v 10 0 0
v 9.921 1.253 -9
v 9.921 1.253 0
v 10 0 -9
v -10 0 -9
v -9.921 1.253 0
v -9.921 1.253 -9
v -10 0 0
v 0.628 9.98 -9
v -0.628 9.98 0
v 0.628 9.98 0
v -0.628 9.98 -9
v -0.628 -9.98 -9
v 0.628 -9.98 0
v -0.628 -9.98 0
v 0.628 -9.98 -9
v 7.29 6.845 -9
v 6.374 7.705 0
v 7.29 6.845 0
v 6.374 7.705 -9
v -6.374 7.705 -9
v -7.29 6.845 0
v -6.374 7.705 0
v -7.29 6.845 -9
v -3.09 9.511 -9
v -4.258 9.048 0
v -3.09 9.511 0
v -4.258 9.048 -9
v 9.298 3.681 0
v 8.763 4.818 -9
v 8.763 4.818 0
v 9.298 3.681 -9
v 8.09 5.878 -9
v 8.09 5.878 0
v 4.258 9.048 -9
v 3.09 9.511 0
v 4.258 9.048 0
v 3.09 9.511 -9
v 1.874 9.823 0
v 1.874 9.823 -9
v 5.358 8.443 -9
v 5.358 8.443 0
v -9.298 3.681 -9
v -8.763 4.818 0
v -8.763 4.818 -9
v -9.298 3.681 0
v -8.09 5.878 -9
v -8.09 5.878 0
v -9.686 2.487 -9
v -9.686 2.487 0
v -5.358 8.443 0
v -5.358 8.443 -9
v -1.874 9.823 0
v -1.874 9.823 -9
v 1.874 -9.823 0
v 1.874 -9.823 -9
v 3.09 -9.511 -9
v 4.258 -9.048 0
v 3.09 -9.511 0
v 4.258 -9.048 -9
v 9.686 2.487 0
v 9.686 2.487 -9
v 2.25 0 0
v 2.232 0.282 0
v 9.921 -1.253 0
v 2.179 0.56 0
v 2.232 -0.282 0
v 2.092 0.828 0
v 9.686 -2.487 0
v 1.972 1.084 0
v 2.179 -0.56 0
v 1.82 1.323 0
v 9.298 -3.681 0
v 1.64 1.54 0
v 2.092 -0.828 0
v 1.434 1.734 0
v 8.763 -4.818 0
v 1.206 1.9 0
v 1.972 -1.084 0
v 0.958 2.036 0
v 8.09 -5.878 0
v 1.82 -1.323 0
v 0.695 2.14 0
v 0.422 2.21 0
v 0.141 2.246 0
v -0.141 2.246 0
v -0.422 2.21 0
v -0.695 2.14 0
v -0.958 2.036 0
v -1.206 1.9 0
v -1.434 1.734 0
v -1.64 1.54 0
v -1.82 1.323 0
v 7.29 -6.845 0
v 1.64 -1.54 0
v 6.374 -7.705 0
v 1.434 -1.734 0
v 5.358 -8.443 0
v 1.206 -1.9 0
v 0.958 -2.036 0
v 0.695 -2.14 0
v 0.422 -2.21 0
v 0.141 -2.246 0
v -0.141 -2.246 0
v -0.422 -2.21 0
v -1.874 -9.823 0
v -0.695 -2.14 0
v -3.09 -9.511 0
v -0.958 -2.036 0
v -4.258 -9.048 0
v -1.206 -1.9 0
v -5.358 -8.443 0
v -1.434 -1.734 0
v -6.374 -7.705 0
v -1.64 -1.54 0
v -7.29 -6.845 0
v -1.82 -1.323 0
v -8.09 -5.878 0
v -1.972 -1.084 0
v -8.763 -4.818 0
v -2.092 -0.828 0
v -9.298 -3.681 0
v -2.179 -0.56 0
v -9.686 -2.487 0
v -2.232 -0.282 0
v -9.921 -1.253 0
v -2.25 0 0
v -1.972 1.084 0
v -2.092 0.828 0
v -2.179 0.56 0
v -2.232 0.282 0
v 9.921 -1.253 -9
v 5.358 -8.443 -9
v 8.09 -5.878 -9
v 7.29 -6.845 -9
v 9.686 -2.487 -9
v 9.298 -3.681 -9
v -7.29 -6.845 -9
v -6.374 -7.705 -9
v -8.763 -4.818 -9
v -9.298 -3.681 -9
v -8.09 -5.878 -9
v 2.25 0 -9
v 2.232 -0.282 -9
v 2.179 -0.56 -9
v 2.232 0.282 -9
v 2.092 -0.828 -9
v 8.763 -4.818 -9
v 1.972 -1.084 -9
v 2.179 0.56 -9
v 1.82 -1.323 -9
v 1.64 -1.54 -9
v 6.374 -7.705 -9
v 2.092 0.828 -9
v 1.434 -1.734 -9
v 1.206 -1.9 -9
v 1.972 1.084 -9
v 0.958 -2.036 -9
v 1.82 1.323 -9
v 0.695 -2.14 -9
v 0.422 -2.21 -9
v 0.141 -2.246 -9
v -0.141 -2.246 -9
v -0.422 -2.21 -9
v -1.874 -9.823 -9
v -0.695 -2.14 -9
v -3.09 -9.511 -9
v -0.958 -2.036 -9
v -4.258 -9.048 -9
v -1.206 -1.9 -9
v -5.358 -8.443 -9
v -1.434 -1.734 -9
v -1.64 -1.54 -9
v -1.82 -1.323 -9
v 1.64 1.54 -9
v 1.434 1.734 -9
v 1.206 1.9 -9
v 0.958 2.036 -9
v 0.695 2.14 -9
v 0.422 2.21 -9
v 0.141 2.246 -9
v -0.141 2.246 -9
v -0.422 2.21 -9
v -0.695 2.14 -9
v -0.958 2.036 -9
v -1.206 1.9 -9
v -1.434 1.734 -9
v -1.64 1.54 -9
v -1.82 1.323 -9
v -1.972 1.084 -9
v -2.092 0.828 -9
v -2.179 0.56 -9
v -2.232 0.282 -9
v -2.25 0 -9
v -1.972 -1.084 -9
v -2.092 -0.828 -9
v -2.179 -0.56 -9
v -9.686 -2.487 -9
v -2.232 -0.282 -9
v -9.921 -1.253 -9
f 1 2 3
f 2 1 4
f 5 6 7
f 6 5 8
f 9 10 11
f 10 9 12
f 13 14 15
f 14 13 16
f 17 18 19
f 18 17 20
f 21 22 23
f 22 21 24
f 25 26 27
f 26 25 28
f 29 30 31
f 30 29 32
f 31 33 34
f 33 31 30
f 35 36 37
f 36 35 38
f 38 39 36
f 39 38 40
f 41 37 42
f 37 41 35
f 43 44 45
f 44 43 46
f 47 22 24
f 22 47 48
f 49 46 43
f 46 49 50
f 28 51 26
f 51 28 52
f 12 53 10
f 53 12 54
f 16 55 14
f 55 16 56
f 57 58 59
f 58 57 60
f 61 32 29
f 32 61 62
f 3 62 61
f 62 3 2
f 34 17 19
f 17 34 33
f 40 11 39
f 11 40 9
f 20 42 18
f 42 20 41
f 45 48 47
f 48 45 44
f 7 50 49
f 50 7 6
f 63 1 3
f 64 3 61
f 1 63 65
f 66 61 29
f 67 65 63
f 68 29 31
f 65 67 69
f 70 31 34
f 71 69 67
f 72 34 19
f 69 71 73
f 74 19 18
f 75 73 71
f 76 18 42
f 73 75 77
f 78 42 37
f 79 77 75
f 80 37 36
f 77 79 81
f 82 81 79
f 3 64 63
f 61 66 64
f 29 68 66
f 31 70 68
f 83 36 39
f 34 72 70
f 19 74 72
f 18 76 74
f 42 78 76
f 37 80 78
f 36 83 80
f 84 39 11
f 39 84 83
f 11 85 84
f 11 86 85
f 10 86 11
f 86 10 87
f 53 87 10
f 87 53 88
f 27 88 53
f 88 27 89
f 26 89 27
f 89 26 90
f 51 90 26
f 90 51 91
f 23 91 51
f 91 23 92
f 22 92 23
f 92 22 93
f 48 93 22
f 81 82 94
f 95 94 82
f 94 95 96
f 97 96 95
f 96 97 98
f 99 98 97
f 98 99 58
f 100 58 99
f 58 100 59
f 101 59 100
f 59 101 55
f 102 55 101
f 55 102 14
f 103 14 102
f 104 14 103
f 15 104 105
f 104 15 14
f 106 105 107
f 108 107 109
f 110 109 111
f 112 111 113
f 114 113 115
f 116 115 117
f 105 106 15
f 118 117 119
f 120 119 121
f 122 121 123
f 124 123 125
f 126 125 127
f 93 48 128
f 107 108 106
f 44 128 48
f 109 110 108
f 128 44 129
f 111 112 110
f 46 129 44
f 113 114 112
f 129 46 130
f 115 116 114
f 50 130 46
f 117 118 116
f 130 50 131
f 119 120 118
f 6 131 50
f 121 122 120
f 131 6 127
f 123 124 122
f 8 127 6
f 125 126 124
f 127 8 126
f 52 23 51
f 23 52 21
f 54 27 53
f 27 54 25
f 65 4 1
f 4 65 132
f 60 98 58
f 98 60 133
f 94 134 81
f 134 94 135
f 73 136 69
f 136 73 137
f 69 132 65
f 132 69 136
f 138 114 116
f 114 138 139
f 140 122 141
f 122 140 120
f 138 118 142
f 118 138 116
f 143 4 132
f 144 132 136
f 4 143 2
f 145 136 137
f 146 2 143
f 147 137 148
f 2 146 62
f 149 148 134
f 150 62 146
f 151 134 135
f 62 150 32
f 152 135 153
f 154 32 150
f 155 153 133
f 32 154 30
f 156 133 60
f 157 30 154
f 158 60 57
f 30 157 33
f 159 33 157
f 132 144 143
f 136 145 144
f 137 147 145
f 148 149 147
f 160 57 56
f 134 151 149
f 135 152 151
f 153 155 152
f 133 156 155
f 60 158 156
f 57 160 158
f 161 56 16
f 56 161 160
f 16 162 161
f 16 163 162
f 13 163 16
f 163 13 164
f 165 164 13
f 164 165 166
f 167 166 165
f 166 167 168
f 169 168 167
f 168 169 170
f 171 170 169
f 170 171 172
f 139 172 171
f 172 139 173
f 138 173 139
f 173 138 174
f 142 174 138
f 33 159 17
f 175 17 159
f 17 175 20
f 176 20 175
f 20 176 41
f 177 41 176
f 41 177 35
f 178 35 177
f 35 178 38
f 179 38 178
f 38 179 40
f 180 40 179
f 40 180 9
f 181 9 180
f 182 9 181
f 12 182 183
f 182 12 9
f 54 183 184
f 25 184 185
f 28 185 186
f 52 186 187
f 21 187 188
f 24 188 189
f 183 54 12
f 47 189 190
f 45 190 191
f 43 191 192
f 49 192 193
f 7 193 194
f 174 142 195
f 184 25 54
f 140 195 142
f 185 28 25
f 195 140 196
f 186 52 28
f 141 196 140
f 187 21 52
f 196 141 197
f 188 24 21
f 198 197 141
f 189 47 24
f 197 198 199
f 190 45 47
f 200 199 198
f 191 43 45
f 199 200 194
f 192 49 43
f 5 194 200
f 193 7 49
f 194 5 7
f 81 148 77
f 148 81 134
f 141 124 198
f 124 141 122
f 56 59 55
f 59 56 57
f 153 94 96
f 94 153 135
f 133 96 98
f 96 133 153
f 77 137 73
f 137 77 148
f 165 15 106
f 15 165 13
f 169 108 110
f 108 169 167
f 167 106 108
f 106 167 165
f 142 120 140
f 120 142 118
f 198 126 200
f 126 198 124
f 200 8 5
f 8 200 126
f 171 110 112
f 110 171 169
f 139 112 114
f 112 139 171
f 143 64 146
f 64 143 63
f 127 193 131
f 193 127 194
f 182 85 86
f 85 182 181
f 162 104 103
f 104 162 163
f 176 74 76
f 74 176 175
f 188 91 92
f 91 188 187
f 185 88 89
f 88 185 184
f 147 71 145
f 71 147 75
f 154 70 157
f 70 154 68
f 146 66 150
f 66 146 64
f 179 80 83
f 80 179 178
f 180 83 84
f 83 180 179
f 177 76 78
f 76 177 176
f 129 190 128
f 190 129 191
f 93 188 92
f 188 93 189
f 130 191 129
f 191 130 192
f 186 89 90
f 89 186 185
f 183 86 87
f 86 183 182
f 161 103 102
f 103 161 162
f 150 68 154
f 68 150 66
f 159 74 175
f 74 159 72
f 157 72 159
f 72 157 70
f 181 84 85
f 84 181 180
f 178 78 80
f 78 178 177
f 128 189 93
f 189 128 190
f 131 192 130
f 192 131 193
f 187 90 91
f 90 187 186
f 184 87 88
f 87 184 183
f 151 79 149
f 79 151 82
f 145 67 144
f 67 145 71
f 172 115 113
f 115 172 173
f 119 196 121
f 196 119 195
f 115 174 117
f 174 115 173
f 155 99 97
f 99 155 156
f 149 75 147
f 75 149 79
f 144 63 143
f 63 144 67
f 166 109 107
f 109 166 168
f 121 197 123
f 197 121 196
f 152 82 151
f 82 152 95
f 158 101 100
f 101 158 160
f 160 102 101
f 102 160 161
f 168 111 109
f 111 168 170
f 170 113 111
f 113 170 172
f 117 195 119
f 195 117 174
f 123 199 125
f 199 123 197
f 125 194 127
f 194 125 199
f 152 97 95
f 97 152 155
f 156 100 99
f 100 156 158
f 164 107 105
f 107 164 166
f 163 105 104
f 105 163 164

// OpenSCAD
$fn = 50;


difference() {
	union() {
		translate(v = [0, 0, -9.0000000000]) {
			cylinder(h = 9, r = 10.0000000000);
		}
		cylinder(h = 0, r = 19.0000000000);
	}
	union() {
		#translate(v = [0, 0, -9]) {
			cylinder(h = 9, r = 2.2500000000);
		}
	}
}
